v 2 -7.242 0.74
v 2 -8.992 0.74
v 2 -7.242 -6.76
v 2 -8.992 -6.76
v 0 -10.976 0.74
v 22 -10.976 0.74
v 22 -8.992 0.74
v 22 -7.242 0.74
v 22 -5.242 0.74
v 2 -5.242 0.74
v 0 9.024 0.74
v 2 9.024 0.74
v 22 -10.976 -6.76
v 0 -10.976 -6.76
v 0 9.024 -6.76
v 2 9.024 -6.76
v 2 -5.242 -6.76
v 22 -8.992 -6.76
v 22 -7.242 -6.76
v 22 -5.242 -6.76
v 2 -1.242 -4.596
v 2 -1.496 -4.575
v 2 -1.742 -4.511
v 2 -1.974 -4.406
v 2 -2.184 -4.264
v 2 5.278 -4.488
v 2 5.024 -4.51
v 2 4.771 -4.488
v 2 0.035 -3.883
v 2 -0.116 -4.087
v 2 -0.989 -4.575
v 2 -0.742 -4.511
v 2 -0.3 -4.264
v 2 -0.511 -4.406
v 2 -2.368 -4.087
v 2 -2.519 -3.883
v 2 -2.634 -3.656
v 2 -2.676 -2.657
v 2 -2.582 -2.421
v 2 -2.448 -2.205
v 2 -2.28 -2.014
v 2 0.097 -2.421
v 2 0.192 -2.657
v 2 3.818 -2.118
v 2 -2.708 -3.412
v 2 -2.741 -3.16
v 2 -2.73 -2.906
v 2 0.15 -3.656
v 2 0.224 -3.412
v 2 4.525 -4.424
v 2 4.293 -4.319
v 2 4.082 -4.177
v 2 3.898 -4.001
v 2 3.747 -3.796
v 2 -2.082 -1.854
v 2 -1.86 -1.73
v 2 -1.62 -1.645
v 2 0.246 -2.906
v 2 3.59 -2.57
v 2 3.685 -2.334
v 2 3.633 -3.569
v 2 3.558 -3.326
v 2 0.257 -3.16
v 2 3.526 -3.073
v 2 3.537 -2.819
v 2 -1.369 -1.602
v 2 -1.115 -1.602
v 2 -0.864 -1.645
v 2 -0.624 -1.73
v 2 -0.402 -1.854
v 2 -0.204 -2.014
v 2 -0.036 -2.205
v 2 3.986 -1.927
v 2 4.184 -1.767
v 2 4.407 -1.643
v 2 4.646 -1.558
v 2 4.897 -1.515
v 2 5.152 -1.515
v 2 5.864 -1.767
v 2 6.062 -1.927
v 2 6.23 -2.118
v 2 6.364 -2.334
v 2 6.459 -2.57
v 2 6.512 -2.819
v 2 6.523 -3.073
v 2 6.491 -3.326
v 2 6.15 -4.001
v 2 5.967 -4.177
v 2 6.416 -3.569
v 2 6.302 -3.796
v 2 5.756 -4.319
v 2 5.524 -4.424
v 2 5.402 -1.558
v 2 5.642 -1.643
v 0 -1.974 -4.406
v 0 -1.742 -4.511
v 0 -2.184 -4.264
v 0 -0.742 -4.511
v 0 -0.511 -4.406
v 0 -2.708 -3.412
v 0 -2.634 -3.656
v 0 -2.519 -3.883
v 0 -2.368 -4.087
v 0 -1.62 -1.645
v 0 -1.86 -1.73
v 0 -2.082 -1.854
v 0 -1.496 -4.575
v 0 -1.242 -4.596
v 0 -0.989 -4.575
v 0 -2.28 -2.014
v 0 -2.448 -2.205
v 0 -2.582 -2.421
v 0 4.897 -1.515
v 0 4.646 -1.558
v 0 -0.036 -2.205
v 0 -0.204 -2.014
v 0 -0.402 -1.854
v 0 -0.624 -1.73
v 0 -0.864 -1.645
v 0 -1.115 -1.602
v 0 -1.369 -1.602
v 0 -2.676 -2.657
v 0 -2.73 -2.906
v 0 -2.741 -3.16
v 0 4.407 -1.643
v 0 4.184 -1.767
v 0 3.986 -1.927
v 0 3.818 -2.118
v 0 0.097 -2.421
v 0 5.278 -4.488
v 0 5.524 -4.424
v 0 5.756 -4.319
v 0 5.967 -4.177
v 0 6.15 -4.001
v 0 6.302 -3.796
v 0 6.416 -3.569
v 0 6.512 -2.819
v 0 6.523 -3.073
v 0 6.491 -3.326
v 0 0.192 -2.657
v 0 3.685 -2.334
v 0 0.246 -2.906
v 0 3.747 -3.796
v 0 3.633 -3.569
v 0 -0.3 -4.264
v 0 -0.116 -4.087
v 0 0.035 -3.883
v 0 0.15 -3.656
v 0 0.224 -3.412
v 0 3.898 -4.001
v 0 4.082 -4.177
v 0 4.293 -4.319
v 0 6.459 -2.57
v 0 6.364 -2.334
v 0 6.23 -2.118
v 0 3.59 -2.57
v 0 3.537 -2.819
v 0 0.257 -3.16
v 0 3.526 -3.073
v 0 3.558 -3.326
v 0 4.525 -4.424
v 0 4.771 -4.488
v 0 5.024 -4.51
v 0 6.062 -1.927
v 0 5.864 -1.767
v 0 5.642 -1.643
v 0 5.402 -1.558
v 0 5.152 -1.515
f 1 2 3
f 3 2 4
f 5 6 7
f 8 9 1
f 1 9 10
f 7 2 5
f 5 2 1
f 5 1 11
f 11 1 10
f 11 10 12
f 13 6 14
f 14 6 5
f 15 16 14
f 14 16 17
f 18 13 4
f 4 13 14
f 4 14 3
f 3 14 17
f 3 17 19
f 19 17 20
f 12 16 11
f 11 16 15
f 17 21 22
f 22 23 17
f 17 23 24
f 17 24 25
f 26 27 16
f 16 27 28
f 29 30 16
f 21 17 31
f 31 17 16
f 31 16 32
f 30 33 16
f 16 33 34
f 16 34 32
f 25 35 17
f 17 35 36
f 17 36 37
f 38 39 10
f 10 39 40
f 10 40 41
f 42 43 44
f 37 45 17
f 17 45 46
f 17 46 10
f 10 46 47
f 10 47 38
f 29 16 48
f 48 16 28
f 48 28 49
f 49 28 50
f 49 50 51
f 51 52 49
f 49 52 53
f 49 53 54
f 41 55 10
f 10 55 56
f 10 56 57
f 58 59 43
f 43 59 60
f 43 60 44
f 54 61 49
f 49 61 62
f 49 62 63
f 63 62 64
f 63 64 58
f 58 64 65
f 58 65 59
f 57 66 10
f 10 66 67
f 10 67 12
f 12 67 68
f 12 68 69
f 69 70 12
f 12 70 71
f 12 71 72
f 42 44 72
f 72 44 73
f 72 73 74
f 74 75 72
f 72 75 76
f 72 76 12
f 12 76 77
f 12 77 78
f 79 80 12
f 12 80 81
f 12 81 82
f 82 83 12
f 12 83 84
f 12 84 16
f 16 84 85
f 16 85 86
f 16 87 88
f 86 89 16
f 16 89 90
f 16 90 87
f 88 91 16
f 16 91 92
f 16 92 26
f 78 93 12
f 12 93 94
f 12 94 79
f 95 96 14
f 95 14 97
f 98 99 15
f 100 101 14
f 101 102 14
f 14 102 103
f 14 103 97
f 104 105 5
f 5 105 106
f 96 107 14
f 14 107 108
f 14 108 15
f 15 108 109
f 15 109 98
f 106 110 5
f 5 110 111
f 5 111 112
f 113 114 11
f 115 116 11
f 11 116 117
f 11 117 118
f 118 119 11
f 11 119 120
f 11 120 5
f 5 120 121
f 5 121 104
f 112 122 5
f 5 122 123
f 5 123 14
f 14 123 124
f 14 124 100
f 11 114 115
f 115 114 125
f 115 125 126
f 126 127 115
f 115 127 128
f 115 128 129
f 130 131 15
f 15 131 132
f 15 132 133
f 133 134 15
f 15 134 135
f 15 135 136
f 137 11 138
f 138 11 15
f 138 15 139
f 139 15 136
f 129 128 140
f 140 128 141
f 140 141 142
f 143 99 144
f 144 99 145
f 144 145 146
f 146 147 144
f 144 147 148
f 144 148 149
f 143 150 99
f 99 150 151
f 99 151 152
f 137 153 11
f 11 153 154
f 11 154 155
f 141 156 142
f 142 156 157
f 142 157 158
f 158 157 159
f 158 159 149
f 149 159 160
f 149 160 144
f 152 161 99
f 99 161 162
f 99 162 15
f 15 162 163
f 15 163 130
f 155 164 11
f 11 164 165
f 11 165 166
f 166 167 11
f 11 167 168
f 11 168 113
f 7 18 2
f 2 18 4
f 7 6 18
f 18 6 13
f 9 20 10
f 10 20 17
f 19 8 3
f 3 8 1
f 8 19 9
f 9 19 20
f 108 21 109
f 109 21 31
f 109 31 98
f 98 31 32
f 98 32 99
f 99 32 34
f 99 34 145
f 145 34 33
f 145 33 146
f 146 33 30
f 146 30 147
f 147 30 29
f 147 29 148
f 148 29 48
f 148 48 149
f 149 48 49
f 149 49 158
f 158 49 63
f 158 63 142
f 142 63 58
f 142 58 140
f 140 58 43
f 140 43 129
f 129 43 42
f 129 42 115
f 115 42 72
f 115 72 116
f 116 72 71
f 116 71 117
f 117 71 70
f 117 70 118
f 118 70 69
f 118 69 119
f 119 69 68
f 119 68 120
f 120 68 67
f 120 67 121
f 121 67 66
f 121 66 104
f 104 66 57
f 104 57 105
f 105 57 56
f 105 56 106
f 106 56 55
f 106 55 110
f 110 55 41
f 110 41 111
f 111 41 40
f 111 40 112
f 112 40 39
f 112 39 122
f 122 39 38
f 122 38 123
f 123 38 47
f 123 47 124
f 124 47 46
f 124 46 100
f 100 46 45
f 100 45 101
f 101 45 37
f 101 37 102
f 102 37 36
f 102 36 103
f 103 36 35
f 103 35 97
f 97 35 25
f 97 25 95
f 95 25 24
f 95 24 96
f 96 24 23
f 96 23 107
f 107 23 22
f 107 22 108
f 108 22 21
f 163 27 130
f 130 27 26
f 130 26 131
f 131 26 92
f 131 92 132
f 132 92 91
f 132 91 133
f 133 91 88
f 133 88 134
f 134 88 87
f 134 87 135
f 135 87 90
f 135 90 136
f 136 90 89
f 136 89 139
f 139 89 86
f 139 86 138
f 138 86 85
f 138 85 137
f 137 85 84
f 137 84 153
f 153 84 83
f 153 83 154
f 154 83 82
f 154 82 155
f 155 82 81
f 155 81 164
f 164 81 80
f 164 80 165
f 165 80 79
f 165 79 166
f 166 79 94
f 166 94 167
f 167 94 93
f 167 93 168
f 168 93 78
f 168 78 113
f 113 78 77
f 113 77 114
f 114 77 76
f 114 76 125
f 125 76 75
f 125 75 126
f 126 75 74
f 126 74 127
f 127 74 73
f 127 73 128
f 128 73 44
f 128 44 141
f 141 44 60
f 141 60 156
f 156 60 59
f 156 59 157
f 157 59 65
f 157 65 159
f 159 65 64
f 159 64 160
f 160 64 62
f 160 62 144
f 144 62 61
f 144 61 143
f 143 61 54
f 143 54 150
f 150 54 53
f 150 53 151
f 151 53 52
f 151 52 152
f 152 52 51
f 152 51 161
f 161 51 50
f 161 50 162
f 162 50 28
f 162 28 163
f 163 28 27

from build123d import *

# Parameters (mm, degrees)
SKETCH1_W           = 7.5
SKETCH1_H           = 20
BOSS_EXTRUDE2_DEPTH = 2
SKETCH2_W           = 7.5
SKETCH2_H           = 1.98347932
BOSS_EXTRUDE3_DEPTH = 20
SKETCH3_W           = 7.5
SKETCH3_H           = 2
BOSS_EXTRUDE4_DEPTH = 20
SKETCH5_R           = 1.5
CUT_EXTRUDE1_DEPTH  = 20


with BuildPart() as part:
    # Sketch1 → Boss-Extrude2 (new body)
    with BuildSketch(Plane(origin=(0, 0, 0), x_dir=(0, 0, -1), z_dir=(1, 0, 0))):
        with Locations((3.009581882, -0.975609756)):
            Rectangle(SKETCH1_W, SKETCH1_H)
    extrude(amount=BOSS_EXTRUDE2_DEPTH)

    # Sketch2 → Boss-Extrude3 (add)
    with BuildSketch(Plane(origin=(2, 0, 0), x_dir=(0, 0, -1), z_dir=(1, 0, 0))):
        with Locations((3.009581882, -9.983870096)):
            Rectangle(SKETCH2_W, SKETCH2_H)
    extrude(amount=BOSS_EXTRUDE3_DEPTH)

    # Sketch3 → Boss-Extrude4 (add)
    with BuildSketch(Plane(origin=(2, 0, 0), x_dir=(0, 0, -1), z_dir=(1, 0, 0))):
        with Locations((3.009581882, -6.242130436)):
            Rectangle(SKETCH3_W, SKETCH3_H)
    extrude(amount=BOSS_EXTRUDE4_DEPTH)

    # Sketch5 → Cut-Extrude1 (cut)
    with BuildSketch(Plane(origin=(2, 0, 0), x_dir=(0, 0, -1), z_dir=(1, 0, 0))):
        with Locations((3.009581882, 5.024390244)):
            Circle(SKETCH5_R)
        with Locations((3.096458319, -1.242130436)):
            Circle(SKETCH5_R)
    extrude(amount=-CUT_EXTRUDE1_DEPTH, mode=Mode.SUBTRACT)


solid = part.part
